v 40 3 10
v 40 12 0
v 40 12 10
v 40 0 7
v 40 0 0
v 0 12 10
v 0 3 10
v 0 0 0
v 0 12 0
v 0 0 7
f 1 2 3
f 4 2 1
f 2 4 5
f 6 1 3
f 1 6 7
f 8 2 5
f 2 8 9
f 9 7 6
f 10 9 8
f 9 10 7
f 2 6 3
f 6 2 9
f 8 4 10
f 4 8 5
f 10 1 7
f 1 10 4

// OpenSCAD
// 2026-11-03: front floor cleat for the cradle row. Two per box, one at each end of the row,
// stuck to the floor (VHB tape or RTV) against the front of the end cradles. With the
// desiccant tray as the back stop, the row stays square to the door and still lifts out.
// Plain block: the cradles sit flat on the floor, so nothing can tuck under them. Print flat
// on its base, PLA, no supports.
// Axes: x along the row, y toward the back (+y touches the cradles), z up. Units mm.

len_x  = 40;     // spans the end cradle's plate (4.8) and part of its front rail
dep_y  = 12;
ht_z   = 10;     // stays below the spool rims (lowest ~14.7 above the floor)
chamf  = 3;

difference() {
    cube([len_x, dep_y, ht_z]);
    // chamfer the top front edge (the side you see through the door)
    translate([-1, 0, ht_z - chamf]) rotate([45, 0, 0]) cube([len_x + 2, chamf * 1.5, chamf * 1.5]);
}

echo(str("cleat ", len_x, " x ", dep_y, " x ", ht_z));
